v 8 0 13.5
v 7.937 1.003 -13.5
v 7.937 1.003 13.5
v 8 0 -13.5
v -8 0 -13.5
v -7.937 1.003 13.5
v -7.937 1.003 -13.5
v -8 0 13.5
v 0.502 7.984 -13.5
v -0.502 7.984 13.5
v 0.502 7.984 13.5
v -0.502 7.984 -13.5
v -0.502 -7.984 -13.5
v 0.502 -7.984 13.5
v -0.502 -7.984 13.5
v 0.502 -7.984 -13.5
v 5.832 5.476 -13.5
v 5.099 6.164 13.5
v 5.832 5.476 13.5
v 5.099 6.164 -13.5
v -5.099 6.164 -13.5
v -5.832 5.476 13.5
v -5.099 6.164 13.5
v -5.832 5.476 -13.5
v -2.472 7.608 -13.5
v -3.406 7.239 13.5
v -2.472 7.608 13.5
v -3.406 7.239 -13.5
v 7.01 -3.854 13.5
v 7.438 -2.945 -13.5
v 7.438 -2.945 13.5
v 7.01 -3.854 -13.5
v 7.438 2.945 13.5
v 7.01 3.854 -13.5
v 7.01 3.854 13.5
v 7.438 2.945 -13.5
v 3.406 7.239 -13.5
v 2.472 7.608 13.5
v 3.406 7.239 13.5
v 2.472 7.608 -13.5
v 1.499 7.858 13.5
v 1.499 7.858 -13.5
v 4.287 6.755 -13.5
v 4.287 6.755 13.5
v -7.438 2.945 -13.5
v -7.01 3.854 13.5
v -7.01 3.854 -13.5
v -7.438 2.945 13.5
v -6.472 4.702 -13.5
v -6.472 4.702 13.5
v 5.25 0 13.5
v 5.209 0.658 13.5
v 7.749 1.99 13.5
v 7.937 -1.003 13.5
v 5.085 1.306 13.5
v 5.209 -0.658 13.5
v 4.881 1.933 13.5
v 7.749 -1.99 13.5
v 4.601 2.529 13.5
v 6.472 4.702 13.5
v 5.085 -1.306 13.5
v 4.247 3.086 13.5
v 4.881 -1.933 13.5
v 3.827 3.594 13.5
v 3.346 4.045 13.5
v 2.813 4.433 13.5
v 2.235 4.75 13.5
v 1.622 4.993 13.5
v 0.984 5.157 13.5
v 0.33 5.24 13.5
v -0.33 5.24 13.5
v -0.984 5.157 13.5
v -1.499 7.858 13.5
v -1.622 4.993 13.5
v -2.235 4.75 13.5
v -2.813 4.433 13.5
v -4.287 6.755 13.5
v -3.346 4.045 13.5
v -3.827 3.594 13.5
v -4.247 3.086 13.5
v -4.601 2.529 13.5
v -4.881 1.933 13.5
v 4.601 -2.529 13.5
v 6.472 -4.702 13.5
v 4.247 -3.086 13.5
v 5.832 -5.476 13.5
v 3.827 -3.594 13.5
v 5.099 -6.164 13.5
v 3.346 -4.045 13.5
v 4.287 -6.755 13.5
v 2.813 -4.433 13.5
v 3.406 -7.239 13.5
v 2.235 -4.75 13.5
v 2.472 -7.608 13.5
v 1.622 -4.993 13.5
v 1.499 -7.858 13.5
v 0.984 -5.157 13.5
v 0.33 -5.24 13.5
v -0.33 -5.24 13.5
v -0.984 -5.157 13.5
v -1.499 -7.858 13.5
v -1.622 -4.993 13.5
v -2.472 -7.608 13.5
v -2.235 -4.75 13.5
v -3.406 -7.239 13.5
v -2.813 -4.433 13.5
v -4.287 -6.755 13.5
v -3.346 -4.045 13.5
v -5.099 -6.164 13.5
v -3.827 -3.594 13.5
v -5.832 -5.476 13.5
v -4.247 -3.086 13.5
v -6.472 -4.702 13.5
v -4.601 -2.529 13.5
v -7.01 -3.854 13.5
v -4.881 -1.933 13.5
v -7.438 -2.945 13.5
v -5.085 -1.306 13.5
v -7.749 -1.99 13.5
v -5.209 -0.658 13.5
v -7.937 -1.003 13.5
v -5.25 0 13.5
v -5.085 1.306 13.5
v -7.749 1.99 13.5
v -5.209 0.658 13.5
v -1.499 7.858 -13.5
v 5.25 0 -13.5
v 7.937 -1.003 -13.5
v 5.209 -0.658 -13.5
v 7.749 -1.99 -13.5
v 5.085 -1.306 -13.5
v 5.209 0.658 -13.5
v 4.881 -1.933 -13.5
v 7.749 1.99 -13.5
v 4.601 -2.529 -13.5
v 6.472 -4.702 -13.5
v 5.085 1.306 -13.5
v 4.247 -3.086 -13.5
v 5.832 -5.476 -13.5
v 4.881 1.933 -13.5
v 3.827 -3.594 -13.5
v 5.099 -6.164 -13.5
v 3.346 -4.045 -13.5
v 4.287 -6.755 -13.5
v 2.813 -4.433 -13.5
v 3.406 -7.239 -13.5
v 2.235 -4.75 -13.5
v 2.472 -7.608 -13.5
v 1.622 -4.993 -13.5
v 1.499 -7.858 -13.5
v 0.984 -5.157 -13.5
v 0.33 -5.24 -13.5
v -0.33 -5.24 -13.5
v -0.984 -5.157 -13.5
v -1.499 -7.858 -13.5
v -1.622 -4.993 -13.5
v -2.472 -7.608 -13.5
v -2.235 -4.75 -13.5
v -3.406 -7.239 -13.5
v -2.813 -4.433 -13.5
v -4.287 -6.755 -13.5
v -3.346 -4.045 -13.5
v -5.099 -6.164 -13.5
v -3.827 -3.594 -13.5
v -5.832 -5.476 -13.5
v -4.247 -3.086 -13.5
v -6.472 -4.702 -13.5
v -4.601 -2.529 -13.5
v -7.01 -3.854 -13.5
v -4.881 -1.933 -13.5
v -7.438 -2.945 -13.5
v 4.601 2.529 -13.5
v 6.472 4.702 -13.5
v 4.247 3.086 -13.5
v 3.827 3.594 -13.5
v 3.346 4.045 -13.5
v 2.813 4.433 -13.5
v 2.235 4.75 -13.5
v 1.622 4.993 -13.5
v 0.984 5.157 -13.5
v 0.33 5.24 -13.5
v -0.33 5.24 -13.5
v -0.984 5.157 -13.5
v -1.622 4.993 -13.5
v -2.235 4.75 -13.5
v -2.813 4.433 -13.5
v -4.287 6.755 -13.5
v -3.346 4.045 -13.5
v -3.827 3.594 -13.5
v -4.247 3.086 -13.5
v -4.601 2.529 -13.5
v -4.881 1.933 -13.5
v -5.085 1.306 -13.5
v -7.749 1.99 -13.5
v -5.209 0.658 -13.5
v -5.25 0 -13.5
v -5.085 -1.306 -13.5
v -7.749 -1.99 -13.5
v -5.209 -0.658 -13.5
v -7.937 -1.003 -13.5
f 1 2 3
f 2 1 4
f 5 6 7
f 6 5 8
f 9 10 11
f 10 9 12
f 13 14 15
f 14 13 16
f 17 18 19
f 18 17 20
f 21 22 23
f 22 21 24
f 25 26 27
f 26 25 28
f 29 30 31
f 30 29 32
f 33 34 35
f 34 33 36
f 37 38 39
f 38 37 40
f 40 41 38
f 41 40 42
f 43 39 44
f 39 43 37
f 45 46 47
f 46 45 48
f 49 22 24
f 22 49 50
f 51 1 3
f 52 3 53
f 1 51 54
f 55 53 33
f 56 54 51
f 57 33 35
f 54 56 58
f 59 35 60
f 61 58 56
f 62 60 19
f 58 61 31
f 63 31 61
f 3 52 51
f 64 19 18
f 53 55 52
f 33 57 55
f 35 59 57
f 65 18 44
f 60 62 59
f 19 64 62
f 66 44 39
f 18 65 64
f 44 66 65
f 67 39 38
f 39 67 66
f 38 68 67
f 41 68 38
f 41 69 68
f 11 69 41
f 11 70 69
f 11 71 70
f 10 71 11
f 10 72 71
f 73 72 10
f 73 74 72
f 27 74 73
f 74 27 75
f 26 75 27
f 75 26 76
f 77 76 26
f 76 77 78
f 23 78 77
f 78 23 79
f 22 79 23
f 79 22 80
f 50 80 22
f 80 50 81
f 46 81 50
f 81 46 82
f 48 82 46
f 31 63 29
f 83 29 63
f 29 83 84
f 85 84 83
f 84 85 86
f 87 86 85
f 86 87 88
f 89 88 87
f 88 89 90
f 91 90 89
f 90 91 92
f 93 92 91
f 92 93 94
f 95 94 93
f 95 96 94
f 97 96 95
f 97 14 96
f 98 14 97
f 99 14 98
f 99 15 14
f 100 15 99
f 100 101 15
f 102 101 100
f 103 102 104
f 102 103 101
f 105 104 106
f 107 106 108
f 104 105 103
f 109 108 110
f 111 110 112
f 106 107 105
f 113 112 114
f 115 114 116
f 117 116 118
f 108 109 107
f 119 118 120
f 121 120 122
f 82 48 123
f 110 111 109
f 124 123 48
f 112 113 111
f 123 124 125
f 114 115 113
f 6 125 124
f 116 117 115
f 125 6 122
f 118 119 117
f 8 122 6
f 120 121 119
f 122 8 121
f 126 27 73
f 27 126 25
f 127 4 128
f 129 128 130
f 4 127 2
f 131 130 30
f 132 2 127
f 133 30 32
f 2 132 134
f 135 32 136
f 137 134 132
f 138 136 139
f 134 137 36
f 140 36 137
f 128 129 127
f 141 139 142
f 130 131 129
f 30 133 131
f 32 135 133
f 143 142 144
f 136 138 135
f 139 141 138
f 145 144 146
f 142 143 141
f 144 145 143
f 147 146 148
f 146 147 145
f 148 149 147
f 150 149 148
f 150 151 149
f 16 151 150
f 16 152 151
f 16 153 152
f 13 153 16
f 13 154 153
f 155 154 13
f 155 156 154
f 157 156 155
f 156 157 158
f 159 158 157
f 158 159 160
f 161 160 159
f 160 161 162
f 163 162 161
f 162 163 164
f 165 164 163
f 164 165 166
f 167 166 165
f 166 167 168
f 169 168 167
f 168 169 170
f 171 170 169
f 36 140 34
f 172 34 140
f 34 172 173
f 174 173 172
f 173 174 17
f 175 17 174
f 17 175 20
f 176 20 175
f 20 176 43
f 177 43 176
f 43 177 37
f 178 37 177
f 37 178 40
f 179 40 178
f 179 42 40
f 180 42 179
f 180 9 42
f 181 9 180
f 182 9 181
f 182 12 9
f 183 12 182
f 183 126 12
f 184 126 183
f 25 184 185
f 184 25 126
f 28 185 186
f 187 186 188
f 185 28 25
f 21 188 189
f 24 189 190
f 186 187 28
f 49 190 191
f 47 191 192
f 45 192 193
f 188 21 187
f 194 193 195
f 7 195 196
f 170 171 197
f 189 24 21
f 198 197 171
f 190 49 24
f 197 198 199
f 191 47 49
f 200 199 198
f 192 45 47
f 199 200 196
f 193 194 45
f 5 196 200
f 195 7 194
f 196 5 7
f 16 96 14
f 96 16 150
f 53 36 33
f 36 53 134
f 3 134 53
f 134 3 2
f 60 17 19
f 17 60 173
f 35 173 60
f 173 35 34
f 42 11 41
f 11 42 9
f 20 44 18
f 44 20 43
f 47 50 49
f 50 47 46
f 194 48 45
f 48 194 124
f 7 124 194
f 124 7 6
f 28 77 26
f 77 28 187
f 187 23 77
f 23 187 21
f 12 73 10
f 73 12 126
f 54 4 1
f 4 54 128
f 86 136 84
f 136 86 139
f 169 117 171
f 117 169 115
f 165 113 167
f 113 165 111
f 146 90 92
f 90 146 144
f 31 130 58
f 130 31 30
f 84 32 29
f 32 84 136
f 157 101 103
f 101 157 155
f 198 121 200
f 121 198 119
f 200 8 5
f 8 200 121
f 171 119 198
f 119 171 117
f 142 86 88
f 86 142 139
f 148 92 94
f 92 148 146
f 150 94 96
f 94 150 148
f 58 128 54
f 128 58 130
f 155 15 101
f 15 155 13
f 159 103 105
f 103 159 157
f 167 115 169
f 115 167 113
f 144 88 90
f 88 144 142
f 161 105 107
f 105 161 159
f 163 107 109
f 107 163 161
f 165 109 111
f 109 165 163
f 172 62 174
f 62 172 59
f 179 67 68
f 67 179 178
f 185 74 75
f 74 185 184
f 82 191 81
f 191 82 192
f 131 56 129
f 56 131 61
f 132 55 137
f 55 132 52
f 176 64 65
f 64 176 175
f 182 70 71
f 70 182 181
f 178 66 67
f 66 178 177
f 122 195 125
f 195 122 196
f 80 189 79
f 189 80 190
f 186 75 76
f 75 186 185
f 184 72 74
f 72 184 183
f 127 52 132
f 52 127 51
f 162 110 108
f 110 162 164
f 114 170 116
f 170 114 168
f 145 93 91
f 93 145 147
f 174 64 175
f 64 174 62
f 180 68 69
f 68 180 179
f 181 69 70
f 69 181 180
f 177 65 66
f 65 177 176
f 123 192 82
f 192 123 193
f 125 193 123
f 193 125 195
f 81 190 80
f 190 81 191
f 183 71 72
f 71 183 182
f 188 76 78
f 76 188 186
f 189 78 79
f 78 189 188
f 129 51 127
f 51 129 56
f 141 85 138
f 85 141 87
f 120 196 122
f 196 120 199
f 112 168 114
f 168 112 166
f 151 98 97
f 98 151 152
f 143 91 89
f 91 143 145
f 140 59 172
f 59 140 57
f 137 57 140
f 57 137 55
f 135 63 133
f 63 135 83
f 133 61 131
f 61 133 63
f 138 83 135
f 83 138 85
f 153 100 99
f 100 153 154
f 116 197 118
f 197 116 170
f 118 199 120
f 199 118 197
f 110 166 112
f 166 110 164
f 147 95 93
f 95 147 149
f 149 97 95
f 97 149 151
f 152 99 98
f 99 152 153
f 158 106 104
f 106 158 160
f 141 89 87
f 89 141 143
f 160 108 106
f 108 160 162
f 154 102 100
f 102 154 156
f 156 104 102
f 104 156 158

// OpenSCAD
$fn = 50;


difference() {
	union() {
		translate(v = [0, 0, -13.5000000000]) {
			cylinder(h = 27, r = 8.0000000000);
		}
	}
	union() {
		translate(v = [0, 0, -100.0000000000]) {
			cylinder(h = 200, r = 5.2500000000);
		}
	}
}
